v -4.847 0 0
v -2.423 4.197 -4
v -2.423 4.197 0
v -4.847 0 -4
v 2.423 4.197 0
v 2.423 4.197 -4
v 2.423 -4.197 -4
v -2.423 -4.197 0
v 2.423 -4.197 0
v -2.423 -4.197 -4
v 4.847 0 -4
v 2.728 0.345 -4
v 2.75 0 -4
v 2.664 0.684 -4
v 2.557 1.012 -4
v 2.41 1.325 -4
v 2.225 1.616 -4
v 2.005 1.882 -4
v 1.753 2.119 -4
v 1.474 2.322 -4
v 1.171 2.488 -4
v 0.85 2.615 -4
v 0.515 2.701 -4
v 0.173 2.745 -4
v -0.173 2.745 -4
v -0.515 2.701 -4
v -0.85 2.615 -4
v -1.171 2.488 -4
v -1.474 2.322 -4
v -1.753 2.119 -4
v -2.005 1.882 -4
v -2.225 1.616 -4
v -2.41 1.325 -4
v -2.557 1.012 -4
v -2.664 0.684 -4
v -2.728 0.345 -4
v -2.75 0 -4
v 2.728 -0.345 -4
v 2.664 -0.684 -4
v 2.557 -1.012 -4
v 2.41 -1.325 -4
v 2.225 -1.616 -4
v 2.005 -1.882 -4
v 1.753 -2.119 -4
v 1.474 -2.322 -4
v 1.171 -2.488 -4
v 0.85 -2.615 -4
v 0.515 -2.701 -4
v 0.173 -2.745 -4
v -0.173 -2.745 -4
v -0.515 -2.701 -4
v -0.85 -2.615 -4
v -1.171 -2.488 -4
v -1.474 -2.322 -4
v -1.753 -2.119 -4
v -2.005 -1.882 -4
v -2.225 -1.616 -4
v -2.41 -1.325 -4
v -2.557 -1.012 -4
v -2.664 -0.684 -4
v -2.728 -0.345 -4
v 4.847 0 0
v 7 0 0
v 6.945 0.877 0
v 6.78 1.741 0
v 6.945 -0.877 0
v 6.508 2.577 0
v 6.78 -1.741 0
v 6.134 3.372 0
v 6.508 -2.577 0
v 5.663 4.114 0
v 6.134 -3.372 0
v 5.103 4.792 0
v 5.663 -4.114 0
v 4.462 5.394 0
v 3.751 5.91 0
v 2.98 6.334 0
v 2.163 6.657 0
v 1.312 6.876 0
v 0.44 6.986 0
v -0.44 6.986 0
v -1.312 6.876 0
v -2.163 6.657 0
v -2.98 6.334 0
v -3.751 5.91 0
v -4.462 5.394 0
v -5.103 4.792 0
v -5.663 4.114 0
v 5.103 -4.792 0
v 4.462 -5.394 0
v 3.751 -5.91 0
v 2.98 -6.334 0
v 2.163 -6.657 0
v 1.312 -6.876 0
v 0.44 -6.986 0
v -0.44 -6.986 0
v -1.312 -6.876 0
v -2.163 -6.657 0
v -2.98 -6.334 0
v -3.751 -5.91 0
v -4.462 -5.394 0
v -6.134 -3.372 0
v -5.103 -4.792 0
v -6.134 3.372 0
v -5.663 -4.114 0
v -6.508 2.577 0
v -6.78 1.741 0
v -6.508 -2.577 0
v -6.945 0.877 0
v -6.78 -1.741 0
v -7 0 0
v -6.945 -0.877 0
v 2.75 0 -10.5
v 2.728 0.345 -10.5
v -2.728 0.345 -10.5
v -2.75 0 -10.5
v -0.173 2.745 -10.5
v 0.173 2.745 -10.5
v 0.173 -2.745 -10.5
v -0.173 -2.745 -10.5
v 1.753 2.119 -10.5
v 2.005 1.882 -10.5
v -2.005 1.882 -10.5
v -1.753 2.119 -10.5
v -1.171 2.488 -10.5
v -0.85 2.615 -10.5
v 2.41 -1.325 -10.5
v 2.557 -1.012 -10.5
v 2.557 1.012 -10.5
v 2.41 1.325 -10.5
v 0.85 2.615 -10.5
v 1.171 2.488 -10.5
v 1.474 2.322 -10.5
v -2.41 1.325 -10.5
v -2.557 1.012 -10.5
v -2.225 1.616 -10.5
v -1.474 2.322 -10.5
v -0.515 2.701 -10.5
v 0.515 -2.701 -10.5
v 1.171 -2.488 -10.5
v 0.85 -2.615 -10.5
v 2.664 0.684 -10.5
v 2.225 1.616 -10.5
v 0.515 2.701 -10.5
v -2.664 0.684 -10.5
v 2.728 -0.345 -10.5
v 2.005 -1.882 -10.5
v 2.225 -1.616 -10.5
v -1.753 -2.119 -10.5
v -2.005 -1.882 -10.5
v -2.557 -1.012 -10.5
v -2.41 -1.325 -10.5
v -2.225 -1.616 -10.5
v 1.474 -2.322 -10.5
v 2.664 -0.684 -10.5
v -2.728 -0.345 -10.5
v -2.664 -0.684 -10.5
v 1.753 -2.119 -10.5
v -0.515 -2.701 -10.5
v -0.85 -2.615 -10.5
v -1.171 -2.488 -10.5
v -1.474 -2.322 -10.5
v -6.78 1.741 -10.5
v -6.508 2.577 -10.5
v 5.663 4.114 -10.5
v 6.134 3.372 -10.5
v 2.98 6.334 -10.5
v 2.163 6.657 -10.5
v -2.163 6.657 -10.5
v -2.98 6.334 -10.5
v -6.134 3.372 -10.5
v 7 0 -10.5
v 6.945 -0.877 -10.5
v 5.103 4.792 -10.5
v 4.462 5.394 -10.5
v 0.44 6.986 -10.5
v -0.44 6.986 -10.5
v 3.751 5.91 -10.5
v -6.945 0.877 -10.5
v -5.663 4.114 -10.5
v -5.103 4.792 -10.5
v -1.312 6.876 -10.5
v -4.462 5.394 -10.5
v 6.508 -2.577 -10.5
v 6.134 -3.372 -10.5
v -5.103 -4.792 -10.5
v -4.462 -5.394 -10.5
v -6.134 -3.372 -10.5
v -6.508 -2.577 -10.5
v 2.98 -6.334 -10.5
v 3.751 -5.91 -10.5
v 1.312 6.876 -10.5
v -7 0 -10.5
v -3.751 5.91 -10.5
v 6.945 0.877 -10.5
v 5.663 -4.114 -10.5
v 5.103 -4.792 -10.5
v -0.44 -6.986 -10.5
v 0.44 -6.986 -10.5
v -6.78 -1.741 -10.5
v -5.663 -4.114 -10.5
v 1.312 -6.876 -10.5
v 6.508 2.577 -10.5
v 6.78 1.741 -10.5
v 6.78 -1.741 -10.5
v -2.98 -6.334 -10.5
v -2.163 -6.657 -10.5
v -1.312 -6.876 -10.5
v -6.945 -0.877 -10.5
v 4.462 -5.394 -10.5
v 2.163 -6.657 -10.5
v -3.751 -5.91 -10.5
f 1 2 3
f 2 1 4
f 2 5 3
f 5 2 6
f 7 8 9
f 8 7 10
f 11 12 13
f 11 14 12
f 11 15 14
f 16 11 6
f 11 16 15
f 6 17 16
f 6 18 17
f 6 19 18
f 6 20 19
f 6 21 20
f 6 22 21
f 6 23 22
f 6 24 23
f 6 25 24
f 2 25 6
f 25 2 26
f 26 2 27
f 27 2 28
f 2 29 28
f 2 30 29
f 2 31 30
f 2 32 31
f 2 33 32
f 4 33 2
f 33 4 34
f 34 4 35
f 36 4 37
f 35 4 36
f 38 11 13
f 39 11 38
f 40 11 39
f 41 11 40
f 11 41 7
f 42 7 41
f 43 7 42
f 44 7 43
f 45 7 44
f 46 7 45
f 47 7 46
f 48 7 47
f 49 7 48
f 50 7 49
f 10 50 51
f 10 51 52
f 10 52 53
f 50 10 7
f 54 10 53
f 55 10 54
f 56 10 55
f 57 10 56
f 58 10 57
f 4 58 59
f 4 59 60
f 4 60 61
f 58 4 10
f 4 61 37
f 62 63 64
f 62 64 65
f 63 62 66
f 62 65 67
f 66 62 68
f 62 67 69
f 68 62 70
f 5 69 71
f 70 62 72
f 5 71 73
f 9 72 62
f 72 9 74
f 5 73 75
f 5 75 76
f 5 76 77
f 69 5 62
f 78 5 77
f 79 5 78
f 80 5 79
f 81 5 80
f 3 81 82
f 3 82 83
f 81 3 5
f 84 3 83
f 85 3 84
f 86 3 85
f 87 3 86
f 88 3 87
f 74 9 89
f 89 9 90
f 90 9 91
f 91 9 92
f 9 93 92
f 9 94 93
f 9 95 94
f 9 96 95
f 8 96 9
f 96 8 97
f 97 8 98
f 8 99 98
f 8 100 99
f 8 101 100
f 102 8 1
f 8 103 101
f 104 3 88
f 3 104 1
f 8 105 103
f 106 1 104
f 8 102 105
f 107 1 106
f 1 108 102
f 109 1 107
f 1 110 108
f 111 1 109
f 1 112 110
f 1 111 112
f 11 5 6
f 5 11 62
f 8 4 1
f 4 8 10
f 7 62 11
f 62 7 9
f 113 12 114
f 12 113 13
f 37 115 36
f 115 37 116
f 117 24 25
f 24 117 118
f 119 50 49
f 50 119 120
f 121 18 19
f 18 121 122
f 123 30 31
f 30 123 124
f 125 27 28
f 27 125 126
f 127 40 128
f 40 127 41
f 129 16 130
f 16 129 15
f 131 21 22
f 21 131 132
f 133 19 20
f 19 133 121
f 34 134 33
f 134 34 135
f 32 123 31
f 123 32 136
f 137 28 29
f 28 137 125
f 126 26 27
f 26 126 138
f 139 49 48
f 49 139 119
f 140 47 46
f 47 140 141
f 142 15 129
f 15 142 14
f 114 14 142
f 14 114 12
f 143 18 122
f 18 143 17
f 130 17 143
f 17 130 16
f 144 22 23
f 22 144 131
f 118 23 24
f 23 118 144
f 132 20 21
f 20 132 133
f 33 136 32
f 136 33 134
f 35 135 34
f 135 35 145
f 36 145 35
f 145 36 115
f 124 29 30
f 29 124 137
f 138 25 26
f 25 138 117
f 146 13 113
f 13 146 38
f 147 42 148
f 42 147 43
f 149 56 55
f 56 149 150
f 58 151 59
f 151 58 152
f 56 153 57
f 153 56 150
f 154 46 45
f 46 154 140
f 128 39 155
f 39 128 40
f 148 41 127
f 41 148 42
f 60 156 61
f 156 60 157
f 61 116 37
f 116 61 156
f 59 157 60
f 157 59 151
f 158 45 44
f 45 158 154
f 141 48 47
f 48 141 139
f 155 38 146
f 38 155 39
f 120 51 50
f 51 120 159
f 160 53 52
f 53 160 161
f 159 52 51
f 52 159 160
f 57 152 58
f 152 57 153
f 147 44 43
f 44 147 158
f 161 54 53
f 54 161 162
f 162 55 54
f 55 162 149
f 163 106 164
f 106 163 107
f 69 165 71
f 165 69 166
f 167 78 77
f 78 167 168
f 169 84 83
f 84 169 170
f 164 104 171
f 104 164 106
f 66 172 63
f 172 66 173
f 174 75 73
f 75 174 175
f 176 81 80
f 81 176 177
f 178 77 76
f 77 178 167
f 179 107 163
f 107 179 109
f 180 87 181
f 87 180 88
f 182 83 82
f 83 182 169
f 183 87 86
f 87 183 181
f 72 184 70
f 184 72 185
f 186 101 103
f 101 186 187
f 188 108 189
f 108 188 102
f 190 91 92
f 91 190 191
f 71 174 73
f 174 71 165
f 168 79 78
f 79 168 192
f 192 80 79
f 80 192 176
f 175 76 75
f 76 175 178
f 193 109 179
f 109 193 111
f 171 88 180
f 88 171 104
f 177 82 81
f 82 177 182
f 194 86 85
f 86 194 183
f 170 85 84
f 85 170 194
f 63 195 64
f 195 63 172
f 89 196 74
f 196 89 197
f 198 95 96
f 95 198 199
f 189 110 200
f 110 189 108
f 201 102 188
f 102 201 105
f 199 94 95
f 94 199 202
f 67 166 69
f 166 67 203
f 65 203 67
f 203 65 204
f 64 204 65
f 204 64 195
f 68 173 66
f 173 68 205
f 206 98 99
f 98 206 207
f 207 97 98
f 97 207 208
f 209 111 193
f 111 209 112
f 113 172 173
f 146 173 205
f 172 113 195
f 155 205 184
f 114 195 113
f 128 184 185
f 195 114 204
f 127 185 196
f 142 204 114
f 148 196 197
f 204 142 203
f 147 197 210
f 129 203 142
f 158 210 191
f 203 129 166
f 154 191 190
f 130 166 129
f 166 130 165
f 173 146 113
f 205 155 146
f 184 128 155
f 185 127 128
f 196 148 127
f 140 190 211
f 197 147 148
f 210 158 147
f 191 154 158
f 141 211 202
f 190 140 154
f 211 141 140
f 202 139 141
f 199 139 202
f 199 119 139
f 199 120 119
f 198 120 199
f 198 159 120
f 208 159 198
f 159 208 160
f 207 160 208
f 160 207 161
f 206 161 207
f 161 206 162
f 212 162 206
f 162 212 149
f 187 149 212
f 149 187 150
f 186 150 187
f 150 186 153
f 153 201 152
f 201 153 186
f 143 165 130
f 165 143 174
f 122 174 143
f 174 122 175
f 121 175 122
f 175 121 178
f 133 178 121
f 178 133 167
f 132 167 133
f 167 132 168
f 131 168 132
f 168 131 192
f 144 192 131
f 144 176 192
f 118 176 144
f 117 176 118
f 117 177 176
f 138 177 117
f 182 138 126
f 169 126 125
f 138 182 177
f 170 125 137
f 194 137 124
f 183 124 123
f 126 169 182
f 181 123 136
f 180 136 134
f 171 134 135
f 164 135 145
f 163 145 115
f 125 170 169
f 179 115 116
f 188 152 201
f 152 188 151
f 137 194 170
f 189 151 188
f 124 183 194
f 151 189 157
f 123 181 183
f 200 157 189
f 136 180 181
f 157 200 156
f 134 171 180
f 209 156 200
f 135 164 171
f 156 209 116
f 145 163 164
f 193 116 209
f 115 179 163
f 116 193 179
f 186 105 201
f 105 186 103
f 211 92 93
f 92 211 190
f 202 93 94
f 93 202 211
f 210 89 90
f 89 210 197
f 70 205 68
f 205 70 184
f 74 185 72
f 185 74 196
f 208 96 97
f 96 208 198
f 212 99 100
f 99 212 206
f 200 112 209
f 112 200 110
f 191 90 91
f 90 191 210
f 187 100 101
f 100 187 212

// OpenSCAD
$fn = 50;


difference() {
	union() {
		translate(v = [0, 0, -10.5000000000]) {
			cylinder(h = 10.5000000000, r = 7.0000000000);
		}
	}
	union() {
		translate(v = [0, 0, 0]) {
			rotate(a = [0, 0, 0]) {
				difference() {
					union() {
						translate(v = [0, 0, -4]) {
							linear_extrude(height = 4) {
								polygon(points = [[4.8468000000, 0.0000000000], [2.4234000000, 4.1974519271], [-2.4234000000, 4.1974519271], [-4.8468000000, 0.0000000000], [-2.4234000000, -4.1974519271], [2.4234000000, -4.1974519271]]);
							}
						}
					}
					union();
				}
			}
		}
		#translate(v = [0, 0, -100.0000000000]) {
			cylinder(h = 200, r = 2.7500000000);
		}
	}
}
